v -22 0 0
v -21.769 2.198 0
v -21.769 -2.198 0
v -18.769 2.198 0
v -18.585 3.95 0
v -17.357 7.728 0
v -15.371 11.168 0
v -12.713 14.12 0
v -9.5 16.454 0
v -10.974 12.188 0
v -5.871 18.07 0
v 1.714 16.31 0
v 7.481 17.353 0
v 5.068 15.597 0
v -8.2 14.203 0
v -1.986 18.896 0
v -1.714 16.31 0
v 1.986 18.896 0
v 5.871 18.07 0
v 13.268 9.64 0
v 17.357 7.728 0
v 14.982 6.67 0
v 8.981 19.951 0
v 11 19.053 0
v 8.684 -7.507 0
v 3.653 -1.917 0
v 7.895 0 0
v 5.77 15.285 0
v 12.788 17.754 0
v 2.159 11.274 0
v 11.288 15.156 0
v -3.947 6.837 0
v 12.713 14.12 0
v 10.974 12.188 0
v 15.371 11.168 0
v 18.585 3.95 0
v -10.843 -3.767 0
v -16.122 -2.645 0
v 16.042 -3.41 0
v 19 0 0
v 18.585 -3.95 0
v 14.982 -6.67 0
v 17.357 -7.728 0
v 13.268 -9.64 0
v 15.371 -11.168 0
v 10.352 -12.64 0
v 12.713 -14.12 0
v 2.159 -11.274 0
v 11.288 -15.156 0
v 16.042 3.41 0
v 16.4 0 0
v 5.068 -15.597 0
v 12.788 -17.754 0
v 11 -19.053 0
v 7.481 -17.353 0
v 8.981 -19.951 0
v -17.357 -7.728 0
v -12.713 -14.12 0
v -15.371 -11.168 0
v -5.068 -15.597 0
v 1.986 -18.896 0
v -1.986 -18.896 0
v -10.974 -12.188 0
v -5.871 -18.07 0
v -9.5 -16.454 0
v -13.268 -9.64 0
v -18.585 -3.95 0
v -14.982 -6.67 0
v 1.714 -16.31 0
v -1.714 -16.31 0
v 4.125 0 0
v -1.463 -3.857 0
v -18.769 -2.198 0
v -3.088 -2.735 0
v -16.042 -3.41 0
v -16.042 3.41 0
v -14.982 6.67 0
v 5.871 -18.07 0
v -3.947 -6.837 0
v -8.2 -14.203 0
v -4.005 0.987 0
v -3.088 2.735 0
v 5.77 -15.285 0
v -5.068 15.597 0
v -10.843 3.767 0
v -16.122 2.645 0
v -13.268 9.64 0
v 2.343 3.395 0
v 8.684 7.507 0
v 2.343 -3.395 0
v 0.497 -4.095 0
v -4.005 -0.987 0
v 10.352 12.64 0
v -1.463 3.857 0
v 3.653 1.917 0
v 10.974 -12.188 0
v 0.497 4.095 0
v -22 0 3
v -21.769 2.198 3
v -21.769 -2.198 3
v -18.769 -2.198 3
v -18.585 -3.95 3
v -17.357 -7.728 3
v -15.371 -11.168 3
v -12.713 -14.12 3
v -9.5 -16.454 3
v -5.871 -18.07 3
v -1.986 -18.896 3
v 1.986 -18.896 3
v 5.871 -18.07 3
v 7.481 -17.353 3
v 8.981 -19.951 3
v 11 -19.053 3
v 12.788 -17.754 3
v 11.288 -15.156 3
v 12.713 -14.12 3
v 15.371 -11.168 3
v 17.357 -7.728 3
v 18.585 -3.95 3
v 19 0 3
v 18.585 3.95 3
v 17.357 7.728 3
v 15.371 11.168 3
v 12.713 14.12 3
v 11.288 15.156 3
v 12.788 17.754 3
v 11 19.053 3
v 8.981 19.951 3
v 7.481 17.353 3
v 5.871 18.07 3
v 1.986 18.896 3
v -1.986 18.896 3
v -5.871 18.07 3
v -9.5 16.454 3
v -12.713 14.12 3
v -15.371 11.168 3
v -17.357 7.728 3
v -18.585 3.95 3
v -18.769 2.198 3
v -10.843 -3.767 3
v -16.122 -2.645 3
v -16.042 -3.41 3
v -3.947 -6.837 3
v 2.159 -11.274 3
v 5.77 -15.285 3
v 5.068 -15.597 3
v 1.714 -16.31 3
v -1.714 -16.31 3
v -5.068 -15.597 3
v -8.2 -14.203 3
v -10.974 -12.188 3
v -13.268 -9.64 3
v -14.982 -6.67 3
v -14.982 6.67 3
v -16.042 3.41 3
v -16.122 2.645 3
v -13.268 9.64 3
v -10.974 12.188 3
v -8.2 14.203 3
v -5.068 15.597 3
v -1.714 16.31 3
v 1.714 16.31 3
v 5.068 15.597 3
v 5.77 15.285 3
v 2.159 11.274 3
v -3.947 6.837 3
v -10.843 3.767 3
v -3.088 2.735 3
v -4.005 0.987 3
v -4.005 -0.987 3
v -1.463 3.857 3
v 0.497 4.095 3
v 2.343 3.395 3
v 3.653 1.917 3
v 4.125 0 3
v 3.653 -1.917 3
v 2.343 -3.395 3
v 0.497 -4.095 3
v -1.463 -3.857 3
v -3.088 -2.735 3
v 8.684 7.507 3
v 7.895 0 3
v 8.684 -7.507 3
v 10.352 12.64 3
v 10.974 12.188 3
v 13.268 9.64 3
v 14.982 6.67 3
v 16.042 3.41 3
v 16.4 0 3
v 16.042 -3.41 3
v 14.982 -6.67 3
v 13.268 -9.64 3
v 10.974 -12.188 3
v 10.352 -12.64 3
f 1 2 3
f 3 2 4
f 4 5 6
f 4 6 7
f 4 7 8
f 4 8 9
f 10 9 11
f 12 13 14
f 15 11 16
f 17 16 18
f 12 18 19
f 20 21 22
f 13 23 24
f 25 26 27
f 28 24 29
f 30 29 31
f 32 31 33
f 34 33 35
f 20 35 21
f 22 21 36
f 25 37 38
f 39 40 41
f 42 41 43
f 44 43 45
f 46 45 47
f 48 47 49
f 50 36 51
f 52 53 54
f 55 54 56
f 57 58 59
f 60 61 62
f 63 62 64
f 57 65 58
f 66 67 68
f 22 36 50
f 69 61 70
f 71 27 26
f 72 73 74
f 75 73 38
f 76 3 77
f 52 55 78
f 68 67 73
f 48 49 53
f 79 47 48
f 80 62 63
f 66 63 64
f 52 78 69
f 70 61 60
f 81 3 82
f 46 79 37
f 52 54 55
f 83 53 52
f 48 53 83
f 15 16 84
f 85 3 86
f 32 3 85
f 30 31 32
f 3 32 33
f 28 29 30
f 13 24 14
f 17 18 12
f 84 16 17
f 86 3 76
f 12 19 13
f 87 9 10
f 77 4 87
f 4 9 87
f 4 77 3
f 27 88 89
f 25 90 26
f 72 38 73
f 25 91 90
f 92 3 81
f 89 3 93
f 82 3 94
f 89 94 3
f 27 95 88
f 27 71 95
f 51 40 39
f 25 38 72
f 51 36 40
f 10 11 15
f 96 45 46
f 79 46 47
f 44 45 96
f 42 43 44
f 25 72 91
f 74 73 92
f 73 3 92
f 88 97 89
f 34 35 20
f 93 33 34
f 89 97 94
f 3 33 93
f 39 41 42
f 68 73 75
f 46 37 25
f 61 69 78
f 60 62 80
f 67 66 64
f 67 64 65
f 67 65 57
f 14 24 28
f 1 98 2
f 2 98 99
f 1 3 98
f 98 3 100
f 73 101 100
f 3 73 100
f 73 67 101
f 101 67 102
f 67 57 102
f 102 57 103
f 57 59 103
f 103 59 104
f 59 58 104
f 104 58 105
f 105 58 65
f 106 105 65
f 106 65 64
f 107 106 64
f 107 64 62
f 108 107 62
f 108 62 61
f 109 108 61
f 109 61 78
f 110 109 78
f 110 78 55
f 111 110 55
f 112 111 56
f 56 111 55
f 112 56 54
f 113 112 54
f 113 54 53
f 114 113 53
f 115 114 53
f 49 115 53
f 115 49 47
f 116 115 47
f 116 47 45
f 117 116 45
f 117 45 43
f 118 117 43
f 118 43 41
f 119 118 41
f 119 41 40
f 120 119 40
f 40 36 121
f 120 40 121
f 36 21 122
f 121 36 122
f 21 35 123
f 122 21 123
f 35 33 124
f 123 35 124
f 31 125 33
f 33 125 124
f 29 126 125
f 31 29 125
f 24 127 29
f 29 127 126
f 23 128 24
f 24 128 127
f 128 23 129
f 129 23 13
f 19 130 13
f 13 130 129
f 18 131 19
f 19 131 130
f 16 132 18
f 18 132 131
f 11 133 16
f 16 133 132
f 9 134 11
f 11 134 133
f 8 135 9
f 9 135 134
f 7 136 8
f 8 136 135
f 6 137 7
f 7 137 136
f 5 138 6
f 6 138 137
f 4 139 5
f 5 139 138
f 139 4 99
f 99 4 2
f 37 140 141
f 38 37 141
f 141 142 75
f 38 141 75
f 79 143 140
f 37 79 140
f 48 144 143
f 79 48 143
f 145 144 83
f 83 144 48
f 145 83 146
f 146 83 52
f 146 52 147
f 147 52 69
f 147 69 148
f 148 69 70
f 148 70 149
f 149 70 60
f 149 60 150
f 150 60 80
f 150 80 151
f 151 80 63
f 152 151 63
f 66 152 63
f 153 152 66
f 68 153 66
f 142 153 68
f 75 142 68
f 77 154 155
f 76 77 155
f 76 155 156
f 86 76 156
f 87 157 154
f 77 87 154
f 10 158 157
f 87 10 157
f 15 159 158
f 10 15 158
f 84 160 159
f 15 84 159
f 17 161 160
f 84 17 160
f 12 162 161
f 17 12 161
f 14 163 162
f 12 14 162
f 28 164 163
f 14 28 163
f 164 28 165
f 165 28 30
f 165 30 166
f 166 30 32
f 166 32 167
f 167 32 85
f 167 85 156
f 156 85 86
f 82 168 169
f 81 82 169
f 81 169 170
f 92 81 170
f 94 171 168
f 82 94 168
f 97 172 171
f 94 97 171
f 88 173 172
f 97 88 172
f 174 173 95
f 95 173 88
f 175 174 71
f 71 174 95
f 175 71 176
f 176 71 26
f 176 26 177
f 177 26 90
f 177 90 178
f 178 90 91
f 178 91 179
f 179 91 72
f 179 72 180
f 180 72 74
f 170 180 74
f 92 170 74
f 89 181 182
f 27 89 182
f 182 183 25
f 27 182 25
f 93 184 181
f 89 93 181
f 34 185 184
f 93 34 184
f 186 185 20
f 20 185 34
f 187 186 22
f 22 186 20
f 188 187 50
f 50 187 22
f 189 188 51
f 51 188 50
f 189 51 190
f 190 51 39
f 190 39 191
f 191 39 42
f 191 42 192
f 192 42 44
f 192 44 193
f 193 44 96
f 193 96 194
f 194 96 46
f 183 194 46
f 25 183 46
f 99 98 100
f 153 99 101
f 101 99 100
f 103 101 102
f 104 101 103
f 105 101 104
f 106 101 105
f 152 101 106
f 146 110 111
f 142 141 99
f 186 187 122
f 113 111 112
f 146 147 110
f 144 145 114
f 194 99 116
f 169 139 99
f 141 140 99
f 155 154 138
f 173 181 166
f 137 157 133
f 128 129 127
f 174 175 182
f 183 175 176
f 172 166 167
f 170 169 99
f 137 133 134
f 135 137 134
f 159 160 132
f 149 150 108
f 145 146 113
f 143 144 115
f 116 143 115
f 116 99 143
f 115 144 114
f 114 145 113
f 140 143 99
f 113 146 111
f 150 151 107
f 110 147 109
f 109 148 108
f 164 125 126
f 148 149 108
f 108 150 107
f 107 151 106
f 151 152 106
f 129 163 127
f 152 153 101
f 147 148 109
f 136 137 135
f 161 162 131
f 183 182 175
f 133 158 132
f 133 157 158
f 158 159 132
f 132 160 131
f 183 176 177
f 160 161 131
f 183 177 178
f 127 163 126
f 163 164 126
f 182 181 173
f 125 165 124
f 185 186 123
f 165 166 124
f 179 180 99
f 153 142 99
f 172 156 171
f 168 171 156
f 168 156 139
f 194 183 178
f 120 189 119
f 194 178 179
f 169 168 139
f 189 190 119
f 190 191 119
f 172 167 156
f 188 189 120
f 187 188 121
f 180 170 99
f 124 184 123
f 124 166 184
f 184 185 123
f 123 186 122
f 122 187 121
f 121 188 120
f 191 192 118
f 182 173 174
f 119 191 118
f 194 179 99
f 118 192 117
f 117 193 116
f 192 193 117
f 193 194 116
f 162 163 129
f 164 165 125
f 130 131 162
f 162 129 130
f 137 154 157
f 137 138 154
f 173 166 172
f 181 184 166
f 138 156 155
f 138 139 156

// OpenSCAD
// file: SpoolHolder.scad
module tube(od, id, l)
{
    d = 1;
    difference()
    {
        cylinder(r=od/2, h=l);
        translate([0,0,-d]) cylinder(r=id/2, h=l+2*d);
    }
}

module threespokes(od, et, t)
{
    d = 1;
    difference()
    {
        cylinder(r=od/2, h=t);
        for (a=[0,120,240])
            translate([od*cos(a),od*sin(a),-d])
                cylinder(r=0.5*(sqrt(3)*od-et), h=t+d*2);
    }
}


module SpoolHolder(rd, rt, hd, ht, ad, at)
{
    d  = 1;
    t  = 2.6;  // thickness of hub tube
    bh = 0.5;  // height of retaining bump
    bt = 4;    // thickness of retaining bump
    b2 = bh*2;
    // Outer rim
    difference()
    {
        union()
        {
            threespokes(rd, 4, rt);
            difference()
            {
                union()
                {
                    cylinder(r=hd/2, h=ht);
                    translate([0,0,ht-bt]) 
                        intersection()
                        {
                            cylinder(r1=hd/2, r2=hd/2+b2, h=bt);
                            cylinder(r1=hd/2+b2, r2=hd/2, h=bt);
                            threespokes(rd, 8, bt);
                        }
                }
                translate([0,0,-d]) 
                    cylinder(r=(hd/2)-t, h=ht+d);
            }
            cylinder(r=(ad/2)+t, h=at);
        }
        translate([0,0,-d]) 
            cylinder(r=ad/2, h=at+2*d);    
    }
}

module SpoolSpacer(ad,l)
{
    t = 2;
    tube(ad+2*t, ad, l);
    // Add lumps to help hold tube when drilling out to clean hole
    translate([-((ad+t)/2)-1.5*t,-t/2,0]) cube([1.5*t,t,t]);
    translate([((ad+t)/2),-t/2,0]) cube([1.5*t,t,t]);
}

axledia = 8+0.25;

// Lay down 2-off 38mm hubs and spacers
for (x = [-25,25])
{
    translate([x,0,0])
    {
        SpoolHolder(38+6, 3, 38, 10, axledia, 5);
        translate([0,30,0]) SpoolSpacer(axledia, 15) ;
        translate([0,50,0]) SpoolSpacer(axledia, 15) ;
        translate([0,-30,0]) SpoolSpacer(axledia, 6) ;
    }
}

// threespokes(20, 3, 5);
// main file
use <SpoolHolder.scad>

// Test possible Skeinforge problem
module TestThreeSpokedWheel(rd, rt, hd, ht, ad, at)
{
    d  = 1;
    t  = 2.6;    // thickness of hub tube
    bh = 0.5;  // height of retaining bump
    bt = 4;    // thickness of retaining bump
    b2 = bh*2;
    
    difference()
    {
        union()
        {
            tube(hd, hd-2*t, ht);
            threespokes(rd, 4, rt);
        }
        translate([0,0,-d]) 
            cylinder(r=ad/2, h=at+2*d);    
    }
}

axledia = 8+0.25;

TestThreeSpokedWheel(38+6, 3, 38, 3, axledia, 3);
